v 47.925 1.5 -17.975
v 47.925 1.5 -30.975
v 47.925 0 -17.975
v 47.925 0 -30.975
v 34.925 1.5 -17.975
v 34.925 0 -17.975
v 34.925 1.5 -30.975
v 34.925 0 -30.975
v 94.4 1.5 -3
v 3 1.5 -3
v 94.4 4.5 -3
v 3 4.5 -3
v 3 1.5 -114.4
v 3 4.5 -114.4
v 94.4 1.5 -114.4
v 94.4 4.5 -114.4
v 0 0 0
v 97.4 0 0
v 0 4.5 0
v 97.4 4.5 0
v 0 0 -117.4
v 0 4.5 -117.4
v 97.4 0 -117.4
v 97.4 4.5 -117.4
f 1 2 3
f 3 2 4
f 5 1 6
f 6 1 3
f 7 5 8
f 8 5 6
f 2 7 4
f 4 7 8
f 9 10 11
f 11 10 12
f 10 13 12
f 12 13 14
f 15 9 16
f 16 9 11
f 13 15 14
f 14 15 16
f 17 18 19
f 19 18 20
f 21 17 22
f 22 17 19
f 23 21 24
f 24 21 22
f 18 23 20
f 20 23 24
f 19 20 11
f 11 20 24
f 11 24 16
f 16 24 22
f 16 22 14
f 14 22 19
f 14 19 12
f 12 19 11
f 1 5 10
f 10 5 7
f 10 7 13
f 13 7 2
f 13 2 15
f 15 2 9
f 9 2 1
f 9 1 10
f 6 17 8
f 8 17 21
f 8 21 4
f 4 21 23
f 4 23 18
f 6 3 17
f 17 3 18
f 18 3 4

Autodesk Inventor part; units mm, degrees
ref_plane "YZ Plane" through (0, 0, 0) normal (1, 0, 0) x (0, 1, 0)
ref_plane "XZ Plane" through (0, 0, 0) normal (0, 1, 0) x (-1, 0, 0)
ref_plane "XY Plane" through (0, 0, 0) normal (0, 0, 1) x (1, 0, 0)
sketch "Esboço1" plane through (0, 0, 0) normal (0, 1, 0) x (-1, 0, 0)
  line L0 (0, 0) -> (-97.4, 0)
  line L1 (-97.4, 0) -> (-97.4, -117.4)
  line L2 (-97.4, -117.4) -> (0, -117.4)
  line L3 (0, -117.4) -> (0, 0)
  line L4 (-3, -3) -> (-94.4, -3)
  line L5 (-94.4, -3) -> (-94.4, -114.4)
  line L6 (-94.4, -114.4) -> (-3, -114.4)
  line L7 (-3, -114.4) -> (-3, -3)
  point P0 (-48.7, -114.4)
  point P1 (-48.7, 0)
  point P2 (-48.7, -3)
  dimension "d2" = 3
  dimension "d3" = 3
  dimension "d4" = 3
  dimension "d5" = 3
  dimension "d6" = 91.4
  dimension "d7" = 111.4
extrude "Extrusão1" add sketch "Esboço1" along normal blind 1.5 contours L7 L6 L5 L4
extrude "Extrusão2" add sketch "Esboço1" along normal blind 4.5
sketch "Esboço2" plane through (0, 0, 0) normal (0, -1, 0) x (1, 0, 0)
  line L0 (47.925, -30.975) -> (34.925, -30.975)
  line L1 (34.925, -30.975) -> (34.925, -17.975)
  line L2 (34.925, -17.975) -> (47.925, -17.975)
  line L3 (47.925, -17.975) -> (47.925, -30.975)
  line L4 (0, 0) -> (97.4, 0) projected
  line L5 (0, -117.4) -> (0, 0) projected
  dimension "d12" = 13
  dimension "d13" = 13
  dimension "d16" = 17.975
  dimension "d17" = 34.925
extrude "Extrusão3" cut sketch "Esboço2" against normal blind 10
properties part number "Tampa_3DPrint"
